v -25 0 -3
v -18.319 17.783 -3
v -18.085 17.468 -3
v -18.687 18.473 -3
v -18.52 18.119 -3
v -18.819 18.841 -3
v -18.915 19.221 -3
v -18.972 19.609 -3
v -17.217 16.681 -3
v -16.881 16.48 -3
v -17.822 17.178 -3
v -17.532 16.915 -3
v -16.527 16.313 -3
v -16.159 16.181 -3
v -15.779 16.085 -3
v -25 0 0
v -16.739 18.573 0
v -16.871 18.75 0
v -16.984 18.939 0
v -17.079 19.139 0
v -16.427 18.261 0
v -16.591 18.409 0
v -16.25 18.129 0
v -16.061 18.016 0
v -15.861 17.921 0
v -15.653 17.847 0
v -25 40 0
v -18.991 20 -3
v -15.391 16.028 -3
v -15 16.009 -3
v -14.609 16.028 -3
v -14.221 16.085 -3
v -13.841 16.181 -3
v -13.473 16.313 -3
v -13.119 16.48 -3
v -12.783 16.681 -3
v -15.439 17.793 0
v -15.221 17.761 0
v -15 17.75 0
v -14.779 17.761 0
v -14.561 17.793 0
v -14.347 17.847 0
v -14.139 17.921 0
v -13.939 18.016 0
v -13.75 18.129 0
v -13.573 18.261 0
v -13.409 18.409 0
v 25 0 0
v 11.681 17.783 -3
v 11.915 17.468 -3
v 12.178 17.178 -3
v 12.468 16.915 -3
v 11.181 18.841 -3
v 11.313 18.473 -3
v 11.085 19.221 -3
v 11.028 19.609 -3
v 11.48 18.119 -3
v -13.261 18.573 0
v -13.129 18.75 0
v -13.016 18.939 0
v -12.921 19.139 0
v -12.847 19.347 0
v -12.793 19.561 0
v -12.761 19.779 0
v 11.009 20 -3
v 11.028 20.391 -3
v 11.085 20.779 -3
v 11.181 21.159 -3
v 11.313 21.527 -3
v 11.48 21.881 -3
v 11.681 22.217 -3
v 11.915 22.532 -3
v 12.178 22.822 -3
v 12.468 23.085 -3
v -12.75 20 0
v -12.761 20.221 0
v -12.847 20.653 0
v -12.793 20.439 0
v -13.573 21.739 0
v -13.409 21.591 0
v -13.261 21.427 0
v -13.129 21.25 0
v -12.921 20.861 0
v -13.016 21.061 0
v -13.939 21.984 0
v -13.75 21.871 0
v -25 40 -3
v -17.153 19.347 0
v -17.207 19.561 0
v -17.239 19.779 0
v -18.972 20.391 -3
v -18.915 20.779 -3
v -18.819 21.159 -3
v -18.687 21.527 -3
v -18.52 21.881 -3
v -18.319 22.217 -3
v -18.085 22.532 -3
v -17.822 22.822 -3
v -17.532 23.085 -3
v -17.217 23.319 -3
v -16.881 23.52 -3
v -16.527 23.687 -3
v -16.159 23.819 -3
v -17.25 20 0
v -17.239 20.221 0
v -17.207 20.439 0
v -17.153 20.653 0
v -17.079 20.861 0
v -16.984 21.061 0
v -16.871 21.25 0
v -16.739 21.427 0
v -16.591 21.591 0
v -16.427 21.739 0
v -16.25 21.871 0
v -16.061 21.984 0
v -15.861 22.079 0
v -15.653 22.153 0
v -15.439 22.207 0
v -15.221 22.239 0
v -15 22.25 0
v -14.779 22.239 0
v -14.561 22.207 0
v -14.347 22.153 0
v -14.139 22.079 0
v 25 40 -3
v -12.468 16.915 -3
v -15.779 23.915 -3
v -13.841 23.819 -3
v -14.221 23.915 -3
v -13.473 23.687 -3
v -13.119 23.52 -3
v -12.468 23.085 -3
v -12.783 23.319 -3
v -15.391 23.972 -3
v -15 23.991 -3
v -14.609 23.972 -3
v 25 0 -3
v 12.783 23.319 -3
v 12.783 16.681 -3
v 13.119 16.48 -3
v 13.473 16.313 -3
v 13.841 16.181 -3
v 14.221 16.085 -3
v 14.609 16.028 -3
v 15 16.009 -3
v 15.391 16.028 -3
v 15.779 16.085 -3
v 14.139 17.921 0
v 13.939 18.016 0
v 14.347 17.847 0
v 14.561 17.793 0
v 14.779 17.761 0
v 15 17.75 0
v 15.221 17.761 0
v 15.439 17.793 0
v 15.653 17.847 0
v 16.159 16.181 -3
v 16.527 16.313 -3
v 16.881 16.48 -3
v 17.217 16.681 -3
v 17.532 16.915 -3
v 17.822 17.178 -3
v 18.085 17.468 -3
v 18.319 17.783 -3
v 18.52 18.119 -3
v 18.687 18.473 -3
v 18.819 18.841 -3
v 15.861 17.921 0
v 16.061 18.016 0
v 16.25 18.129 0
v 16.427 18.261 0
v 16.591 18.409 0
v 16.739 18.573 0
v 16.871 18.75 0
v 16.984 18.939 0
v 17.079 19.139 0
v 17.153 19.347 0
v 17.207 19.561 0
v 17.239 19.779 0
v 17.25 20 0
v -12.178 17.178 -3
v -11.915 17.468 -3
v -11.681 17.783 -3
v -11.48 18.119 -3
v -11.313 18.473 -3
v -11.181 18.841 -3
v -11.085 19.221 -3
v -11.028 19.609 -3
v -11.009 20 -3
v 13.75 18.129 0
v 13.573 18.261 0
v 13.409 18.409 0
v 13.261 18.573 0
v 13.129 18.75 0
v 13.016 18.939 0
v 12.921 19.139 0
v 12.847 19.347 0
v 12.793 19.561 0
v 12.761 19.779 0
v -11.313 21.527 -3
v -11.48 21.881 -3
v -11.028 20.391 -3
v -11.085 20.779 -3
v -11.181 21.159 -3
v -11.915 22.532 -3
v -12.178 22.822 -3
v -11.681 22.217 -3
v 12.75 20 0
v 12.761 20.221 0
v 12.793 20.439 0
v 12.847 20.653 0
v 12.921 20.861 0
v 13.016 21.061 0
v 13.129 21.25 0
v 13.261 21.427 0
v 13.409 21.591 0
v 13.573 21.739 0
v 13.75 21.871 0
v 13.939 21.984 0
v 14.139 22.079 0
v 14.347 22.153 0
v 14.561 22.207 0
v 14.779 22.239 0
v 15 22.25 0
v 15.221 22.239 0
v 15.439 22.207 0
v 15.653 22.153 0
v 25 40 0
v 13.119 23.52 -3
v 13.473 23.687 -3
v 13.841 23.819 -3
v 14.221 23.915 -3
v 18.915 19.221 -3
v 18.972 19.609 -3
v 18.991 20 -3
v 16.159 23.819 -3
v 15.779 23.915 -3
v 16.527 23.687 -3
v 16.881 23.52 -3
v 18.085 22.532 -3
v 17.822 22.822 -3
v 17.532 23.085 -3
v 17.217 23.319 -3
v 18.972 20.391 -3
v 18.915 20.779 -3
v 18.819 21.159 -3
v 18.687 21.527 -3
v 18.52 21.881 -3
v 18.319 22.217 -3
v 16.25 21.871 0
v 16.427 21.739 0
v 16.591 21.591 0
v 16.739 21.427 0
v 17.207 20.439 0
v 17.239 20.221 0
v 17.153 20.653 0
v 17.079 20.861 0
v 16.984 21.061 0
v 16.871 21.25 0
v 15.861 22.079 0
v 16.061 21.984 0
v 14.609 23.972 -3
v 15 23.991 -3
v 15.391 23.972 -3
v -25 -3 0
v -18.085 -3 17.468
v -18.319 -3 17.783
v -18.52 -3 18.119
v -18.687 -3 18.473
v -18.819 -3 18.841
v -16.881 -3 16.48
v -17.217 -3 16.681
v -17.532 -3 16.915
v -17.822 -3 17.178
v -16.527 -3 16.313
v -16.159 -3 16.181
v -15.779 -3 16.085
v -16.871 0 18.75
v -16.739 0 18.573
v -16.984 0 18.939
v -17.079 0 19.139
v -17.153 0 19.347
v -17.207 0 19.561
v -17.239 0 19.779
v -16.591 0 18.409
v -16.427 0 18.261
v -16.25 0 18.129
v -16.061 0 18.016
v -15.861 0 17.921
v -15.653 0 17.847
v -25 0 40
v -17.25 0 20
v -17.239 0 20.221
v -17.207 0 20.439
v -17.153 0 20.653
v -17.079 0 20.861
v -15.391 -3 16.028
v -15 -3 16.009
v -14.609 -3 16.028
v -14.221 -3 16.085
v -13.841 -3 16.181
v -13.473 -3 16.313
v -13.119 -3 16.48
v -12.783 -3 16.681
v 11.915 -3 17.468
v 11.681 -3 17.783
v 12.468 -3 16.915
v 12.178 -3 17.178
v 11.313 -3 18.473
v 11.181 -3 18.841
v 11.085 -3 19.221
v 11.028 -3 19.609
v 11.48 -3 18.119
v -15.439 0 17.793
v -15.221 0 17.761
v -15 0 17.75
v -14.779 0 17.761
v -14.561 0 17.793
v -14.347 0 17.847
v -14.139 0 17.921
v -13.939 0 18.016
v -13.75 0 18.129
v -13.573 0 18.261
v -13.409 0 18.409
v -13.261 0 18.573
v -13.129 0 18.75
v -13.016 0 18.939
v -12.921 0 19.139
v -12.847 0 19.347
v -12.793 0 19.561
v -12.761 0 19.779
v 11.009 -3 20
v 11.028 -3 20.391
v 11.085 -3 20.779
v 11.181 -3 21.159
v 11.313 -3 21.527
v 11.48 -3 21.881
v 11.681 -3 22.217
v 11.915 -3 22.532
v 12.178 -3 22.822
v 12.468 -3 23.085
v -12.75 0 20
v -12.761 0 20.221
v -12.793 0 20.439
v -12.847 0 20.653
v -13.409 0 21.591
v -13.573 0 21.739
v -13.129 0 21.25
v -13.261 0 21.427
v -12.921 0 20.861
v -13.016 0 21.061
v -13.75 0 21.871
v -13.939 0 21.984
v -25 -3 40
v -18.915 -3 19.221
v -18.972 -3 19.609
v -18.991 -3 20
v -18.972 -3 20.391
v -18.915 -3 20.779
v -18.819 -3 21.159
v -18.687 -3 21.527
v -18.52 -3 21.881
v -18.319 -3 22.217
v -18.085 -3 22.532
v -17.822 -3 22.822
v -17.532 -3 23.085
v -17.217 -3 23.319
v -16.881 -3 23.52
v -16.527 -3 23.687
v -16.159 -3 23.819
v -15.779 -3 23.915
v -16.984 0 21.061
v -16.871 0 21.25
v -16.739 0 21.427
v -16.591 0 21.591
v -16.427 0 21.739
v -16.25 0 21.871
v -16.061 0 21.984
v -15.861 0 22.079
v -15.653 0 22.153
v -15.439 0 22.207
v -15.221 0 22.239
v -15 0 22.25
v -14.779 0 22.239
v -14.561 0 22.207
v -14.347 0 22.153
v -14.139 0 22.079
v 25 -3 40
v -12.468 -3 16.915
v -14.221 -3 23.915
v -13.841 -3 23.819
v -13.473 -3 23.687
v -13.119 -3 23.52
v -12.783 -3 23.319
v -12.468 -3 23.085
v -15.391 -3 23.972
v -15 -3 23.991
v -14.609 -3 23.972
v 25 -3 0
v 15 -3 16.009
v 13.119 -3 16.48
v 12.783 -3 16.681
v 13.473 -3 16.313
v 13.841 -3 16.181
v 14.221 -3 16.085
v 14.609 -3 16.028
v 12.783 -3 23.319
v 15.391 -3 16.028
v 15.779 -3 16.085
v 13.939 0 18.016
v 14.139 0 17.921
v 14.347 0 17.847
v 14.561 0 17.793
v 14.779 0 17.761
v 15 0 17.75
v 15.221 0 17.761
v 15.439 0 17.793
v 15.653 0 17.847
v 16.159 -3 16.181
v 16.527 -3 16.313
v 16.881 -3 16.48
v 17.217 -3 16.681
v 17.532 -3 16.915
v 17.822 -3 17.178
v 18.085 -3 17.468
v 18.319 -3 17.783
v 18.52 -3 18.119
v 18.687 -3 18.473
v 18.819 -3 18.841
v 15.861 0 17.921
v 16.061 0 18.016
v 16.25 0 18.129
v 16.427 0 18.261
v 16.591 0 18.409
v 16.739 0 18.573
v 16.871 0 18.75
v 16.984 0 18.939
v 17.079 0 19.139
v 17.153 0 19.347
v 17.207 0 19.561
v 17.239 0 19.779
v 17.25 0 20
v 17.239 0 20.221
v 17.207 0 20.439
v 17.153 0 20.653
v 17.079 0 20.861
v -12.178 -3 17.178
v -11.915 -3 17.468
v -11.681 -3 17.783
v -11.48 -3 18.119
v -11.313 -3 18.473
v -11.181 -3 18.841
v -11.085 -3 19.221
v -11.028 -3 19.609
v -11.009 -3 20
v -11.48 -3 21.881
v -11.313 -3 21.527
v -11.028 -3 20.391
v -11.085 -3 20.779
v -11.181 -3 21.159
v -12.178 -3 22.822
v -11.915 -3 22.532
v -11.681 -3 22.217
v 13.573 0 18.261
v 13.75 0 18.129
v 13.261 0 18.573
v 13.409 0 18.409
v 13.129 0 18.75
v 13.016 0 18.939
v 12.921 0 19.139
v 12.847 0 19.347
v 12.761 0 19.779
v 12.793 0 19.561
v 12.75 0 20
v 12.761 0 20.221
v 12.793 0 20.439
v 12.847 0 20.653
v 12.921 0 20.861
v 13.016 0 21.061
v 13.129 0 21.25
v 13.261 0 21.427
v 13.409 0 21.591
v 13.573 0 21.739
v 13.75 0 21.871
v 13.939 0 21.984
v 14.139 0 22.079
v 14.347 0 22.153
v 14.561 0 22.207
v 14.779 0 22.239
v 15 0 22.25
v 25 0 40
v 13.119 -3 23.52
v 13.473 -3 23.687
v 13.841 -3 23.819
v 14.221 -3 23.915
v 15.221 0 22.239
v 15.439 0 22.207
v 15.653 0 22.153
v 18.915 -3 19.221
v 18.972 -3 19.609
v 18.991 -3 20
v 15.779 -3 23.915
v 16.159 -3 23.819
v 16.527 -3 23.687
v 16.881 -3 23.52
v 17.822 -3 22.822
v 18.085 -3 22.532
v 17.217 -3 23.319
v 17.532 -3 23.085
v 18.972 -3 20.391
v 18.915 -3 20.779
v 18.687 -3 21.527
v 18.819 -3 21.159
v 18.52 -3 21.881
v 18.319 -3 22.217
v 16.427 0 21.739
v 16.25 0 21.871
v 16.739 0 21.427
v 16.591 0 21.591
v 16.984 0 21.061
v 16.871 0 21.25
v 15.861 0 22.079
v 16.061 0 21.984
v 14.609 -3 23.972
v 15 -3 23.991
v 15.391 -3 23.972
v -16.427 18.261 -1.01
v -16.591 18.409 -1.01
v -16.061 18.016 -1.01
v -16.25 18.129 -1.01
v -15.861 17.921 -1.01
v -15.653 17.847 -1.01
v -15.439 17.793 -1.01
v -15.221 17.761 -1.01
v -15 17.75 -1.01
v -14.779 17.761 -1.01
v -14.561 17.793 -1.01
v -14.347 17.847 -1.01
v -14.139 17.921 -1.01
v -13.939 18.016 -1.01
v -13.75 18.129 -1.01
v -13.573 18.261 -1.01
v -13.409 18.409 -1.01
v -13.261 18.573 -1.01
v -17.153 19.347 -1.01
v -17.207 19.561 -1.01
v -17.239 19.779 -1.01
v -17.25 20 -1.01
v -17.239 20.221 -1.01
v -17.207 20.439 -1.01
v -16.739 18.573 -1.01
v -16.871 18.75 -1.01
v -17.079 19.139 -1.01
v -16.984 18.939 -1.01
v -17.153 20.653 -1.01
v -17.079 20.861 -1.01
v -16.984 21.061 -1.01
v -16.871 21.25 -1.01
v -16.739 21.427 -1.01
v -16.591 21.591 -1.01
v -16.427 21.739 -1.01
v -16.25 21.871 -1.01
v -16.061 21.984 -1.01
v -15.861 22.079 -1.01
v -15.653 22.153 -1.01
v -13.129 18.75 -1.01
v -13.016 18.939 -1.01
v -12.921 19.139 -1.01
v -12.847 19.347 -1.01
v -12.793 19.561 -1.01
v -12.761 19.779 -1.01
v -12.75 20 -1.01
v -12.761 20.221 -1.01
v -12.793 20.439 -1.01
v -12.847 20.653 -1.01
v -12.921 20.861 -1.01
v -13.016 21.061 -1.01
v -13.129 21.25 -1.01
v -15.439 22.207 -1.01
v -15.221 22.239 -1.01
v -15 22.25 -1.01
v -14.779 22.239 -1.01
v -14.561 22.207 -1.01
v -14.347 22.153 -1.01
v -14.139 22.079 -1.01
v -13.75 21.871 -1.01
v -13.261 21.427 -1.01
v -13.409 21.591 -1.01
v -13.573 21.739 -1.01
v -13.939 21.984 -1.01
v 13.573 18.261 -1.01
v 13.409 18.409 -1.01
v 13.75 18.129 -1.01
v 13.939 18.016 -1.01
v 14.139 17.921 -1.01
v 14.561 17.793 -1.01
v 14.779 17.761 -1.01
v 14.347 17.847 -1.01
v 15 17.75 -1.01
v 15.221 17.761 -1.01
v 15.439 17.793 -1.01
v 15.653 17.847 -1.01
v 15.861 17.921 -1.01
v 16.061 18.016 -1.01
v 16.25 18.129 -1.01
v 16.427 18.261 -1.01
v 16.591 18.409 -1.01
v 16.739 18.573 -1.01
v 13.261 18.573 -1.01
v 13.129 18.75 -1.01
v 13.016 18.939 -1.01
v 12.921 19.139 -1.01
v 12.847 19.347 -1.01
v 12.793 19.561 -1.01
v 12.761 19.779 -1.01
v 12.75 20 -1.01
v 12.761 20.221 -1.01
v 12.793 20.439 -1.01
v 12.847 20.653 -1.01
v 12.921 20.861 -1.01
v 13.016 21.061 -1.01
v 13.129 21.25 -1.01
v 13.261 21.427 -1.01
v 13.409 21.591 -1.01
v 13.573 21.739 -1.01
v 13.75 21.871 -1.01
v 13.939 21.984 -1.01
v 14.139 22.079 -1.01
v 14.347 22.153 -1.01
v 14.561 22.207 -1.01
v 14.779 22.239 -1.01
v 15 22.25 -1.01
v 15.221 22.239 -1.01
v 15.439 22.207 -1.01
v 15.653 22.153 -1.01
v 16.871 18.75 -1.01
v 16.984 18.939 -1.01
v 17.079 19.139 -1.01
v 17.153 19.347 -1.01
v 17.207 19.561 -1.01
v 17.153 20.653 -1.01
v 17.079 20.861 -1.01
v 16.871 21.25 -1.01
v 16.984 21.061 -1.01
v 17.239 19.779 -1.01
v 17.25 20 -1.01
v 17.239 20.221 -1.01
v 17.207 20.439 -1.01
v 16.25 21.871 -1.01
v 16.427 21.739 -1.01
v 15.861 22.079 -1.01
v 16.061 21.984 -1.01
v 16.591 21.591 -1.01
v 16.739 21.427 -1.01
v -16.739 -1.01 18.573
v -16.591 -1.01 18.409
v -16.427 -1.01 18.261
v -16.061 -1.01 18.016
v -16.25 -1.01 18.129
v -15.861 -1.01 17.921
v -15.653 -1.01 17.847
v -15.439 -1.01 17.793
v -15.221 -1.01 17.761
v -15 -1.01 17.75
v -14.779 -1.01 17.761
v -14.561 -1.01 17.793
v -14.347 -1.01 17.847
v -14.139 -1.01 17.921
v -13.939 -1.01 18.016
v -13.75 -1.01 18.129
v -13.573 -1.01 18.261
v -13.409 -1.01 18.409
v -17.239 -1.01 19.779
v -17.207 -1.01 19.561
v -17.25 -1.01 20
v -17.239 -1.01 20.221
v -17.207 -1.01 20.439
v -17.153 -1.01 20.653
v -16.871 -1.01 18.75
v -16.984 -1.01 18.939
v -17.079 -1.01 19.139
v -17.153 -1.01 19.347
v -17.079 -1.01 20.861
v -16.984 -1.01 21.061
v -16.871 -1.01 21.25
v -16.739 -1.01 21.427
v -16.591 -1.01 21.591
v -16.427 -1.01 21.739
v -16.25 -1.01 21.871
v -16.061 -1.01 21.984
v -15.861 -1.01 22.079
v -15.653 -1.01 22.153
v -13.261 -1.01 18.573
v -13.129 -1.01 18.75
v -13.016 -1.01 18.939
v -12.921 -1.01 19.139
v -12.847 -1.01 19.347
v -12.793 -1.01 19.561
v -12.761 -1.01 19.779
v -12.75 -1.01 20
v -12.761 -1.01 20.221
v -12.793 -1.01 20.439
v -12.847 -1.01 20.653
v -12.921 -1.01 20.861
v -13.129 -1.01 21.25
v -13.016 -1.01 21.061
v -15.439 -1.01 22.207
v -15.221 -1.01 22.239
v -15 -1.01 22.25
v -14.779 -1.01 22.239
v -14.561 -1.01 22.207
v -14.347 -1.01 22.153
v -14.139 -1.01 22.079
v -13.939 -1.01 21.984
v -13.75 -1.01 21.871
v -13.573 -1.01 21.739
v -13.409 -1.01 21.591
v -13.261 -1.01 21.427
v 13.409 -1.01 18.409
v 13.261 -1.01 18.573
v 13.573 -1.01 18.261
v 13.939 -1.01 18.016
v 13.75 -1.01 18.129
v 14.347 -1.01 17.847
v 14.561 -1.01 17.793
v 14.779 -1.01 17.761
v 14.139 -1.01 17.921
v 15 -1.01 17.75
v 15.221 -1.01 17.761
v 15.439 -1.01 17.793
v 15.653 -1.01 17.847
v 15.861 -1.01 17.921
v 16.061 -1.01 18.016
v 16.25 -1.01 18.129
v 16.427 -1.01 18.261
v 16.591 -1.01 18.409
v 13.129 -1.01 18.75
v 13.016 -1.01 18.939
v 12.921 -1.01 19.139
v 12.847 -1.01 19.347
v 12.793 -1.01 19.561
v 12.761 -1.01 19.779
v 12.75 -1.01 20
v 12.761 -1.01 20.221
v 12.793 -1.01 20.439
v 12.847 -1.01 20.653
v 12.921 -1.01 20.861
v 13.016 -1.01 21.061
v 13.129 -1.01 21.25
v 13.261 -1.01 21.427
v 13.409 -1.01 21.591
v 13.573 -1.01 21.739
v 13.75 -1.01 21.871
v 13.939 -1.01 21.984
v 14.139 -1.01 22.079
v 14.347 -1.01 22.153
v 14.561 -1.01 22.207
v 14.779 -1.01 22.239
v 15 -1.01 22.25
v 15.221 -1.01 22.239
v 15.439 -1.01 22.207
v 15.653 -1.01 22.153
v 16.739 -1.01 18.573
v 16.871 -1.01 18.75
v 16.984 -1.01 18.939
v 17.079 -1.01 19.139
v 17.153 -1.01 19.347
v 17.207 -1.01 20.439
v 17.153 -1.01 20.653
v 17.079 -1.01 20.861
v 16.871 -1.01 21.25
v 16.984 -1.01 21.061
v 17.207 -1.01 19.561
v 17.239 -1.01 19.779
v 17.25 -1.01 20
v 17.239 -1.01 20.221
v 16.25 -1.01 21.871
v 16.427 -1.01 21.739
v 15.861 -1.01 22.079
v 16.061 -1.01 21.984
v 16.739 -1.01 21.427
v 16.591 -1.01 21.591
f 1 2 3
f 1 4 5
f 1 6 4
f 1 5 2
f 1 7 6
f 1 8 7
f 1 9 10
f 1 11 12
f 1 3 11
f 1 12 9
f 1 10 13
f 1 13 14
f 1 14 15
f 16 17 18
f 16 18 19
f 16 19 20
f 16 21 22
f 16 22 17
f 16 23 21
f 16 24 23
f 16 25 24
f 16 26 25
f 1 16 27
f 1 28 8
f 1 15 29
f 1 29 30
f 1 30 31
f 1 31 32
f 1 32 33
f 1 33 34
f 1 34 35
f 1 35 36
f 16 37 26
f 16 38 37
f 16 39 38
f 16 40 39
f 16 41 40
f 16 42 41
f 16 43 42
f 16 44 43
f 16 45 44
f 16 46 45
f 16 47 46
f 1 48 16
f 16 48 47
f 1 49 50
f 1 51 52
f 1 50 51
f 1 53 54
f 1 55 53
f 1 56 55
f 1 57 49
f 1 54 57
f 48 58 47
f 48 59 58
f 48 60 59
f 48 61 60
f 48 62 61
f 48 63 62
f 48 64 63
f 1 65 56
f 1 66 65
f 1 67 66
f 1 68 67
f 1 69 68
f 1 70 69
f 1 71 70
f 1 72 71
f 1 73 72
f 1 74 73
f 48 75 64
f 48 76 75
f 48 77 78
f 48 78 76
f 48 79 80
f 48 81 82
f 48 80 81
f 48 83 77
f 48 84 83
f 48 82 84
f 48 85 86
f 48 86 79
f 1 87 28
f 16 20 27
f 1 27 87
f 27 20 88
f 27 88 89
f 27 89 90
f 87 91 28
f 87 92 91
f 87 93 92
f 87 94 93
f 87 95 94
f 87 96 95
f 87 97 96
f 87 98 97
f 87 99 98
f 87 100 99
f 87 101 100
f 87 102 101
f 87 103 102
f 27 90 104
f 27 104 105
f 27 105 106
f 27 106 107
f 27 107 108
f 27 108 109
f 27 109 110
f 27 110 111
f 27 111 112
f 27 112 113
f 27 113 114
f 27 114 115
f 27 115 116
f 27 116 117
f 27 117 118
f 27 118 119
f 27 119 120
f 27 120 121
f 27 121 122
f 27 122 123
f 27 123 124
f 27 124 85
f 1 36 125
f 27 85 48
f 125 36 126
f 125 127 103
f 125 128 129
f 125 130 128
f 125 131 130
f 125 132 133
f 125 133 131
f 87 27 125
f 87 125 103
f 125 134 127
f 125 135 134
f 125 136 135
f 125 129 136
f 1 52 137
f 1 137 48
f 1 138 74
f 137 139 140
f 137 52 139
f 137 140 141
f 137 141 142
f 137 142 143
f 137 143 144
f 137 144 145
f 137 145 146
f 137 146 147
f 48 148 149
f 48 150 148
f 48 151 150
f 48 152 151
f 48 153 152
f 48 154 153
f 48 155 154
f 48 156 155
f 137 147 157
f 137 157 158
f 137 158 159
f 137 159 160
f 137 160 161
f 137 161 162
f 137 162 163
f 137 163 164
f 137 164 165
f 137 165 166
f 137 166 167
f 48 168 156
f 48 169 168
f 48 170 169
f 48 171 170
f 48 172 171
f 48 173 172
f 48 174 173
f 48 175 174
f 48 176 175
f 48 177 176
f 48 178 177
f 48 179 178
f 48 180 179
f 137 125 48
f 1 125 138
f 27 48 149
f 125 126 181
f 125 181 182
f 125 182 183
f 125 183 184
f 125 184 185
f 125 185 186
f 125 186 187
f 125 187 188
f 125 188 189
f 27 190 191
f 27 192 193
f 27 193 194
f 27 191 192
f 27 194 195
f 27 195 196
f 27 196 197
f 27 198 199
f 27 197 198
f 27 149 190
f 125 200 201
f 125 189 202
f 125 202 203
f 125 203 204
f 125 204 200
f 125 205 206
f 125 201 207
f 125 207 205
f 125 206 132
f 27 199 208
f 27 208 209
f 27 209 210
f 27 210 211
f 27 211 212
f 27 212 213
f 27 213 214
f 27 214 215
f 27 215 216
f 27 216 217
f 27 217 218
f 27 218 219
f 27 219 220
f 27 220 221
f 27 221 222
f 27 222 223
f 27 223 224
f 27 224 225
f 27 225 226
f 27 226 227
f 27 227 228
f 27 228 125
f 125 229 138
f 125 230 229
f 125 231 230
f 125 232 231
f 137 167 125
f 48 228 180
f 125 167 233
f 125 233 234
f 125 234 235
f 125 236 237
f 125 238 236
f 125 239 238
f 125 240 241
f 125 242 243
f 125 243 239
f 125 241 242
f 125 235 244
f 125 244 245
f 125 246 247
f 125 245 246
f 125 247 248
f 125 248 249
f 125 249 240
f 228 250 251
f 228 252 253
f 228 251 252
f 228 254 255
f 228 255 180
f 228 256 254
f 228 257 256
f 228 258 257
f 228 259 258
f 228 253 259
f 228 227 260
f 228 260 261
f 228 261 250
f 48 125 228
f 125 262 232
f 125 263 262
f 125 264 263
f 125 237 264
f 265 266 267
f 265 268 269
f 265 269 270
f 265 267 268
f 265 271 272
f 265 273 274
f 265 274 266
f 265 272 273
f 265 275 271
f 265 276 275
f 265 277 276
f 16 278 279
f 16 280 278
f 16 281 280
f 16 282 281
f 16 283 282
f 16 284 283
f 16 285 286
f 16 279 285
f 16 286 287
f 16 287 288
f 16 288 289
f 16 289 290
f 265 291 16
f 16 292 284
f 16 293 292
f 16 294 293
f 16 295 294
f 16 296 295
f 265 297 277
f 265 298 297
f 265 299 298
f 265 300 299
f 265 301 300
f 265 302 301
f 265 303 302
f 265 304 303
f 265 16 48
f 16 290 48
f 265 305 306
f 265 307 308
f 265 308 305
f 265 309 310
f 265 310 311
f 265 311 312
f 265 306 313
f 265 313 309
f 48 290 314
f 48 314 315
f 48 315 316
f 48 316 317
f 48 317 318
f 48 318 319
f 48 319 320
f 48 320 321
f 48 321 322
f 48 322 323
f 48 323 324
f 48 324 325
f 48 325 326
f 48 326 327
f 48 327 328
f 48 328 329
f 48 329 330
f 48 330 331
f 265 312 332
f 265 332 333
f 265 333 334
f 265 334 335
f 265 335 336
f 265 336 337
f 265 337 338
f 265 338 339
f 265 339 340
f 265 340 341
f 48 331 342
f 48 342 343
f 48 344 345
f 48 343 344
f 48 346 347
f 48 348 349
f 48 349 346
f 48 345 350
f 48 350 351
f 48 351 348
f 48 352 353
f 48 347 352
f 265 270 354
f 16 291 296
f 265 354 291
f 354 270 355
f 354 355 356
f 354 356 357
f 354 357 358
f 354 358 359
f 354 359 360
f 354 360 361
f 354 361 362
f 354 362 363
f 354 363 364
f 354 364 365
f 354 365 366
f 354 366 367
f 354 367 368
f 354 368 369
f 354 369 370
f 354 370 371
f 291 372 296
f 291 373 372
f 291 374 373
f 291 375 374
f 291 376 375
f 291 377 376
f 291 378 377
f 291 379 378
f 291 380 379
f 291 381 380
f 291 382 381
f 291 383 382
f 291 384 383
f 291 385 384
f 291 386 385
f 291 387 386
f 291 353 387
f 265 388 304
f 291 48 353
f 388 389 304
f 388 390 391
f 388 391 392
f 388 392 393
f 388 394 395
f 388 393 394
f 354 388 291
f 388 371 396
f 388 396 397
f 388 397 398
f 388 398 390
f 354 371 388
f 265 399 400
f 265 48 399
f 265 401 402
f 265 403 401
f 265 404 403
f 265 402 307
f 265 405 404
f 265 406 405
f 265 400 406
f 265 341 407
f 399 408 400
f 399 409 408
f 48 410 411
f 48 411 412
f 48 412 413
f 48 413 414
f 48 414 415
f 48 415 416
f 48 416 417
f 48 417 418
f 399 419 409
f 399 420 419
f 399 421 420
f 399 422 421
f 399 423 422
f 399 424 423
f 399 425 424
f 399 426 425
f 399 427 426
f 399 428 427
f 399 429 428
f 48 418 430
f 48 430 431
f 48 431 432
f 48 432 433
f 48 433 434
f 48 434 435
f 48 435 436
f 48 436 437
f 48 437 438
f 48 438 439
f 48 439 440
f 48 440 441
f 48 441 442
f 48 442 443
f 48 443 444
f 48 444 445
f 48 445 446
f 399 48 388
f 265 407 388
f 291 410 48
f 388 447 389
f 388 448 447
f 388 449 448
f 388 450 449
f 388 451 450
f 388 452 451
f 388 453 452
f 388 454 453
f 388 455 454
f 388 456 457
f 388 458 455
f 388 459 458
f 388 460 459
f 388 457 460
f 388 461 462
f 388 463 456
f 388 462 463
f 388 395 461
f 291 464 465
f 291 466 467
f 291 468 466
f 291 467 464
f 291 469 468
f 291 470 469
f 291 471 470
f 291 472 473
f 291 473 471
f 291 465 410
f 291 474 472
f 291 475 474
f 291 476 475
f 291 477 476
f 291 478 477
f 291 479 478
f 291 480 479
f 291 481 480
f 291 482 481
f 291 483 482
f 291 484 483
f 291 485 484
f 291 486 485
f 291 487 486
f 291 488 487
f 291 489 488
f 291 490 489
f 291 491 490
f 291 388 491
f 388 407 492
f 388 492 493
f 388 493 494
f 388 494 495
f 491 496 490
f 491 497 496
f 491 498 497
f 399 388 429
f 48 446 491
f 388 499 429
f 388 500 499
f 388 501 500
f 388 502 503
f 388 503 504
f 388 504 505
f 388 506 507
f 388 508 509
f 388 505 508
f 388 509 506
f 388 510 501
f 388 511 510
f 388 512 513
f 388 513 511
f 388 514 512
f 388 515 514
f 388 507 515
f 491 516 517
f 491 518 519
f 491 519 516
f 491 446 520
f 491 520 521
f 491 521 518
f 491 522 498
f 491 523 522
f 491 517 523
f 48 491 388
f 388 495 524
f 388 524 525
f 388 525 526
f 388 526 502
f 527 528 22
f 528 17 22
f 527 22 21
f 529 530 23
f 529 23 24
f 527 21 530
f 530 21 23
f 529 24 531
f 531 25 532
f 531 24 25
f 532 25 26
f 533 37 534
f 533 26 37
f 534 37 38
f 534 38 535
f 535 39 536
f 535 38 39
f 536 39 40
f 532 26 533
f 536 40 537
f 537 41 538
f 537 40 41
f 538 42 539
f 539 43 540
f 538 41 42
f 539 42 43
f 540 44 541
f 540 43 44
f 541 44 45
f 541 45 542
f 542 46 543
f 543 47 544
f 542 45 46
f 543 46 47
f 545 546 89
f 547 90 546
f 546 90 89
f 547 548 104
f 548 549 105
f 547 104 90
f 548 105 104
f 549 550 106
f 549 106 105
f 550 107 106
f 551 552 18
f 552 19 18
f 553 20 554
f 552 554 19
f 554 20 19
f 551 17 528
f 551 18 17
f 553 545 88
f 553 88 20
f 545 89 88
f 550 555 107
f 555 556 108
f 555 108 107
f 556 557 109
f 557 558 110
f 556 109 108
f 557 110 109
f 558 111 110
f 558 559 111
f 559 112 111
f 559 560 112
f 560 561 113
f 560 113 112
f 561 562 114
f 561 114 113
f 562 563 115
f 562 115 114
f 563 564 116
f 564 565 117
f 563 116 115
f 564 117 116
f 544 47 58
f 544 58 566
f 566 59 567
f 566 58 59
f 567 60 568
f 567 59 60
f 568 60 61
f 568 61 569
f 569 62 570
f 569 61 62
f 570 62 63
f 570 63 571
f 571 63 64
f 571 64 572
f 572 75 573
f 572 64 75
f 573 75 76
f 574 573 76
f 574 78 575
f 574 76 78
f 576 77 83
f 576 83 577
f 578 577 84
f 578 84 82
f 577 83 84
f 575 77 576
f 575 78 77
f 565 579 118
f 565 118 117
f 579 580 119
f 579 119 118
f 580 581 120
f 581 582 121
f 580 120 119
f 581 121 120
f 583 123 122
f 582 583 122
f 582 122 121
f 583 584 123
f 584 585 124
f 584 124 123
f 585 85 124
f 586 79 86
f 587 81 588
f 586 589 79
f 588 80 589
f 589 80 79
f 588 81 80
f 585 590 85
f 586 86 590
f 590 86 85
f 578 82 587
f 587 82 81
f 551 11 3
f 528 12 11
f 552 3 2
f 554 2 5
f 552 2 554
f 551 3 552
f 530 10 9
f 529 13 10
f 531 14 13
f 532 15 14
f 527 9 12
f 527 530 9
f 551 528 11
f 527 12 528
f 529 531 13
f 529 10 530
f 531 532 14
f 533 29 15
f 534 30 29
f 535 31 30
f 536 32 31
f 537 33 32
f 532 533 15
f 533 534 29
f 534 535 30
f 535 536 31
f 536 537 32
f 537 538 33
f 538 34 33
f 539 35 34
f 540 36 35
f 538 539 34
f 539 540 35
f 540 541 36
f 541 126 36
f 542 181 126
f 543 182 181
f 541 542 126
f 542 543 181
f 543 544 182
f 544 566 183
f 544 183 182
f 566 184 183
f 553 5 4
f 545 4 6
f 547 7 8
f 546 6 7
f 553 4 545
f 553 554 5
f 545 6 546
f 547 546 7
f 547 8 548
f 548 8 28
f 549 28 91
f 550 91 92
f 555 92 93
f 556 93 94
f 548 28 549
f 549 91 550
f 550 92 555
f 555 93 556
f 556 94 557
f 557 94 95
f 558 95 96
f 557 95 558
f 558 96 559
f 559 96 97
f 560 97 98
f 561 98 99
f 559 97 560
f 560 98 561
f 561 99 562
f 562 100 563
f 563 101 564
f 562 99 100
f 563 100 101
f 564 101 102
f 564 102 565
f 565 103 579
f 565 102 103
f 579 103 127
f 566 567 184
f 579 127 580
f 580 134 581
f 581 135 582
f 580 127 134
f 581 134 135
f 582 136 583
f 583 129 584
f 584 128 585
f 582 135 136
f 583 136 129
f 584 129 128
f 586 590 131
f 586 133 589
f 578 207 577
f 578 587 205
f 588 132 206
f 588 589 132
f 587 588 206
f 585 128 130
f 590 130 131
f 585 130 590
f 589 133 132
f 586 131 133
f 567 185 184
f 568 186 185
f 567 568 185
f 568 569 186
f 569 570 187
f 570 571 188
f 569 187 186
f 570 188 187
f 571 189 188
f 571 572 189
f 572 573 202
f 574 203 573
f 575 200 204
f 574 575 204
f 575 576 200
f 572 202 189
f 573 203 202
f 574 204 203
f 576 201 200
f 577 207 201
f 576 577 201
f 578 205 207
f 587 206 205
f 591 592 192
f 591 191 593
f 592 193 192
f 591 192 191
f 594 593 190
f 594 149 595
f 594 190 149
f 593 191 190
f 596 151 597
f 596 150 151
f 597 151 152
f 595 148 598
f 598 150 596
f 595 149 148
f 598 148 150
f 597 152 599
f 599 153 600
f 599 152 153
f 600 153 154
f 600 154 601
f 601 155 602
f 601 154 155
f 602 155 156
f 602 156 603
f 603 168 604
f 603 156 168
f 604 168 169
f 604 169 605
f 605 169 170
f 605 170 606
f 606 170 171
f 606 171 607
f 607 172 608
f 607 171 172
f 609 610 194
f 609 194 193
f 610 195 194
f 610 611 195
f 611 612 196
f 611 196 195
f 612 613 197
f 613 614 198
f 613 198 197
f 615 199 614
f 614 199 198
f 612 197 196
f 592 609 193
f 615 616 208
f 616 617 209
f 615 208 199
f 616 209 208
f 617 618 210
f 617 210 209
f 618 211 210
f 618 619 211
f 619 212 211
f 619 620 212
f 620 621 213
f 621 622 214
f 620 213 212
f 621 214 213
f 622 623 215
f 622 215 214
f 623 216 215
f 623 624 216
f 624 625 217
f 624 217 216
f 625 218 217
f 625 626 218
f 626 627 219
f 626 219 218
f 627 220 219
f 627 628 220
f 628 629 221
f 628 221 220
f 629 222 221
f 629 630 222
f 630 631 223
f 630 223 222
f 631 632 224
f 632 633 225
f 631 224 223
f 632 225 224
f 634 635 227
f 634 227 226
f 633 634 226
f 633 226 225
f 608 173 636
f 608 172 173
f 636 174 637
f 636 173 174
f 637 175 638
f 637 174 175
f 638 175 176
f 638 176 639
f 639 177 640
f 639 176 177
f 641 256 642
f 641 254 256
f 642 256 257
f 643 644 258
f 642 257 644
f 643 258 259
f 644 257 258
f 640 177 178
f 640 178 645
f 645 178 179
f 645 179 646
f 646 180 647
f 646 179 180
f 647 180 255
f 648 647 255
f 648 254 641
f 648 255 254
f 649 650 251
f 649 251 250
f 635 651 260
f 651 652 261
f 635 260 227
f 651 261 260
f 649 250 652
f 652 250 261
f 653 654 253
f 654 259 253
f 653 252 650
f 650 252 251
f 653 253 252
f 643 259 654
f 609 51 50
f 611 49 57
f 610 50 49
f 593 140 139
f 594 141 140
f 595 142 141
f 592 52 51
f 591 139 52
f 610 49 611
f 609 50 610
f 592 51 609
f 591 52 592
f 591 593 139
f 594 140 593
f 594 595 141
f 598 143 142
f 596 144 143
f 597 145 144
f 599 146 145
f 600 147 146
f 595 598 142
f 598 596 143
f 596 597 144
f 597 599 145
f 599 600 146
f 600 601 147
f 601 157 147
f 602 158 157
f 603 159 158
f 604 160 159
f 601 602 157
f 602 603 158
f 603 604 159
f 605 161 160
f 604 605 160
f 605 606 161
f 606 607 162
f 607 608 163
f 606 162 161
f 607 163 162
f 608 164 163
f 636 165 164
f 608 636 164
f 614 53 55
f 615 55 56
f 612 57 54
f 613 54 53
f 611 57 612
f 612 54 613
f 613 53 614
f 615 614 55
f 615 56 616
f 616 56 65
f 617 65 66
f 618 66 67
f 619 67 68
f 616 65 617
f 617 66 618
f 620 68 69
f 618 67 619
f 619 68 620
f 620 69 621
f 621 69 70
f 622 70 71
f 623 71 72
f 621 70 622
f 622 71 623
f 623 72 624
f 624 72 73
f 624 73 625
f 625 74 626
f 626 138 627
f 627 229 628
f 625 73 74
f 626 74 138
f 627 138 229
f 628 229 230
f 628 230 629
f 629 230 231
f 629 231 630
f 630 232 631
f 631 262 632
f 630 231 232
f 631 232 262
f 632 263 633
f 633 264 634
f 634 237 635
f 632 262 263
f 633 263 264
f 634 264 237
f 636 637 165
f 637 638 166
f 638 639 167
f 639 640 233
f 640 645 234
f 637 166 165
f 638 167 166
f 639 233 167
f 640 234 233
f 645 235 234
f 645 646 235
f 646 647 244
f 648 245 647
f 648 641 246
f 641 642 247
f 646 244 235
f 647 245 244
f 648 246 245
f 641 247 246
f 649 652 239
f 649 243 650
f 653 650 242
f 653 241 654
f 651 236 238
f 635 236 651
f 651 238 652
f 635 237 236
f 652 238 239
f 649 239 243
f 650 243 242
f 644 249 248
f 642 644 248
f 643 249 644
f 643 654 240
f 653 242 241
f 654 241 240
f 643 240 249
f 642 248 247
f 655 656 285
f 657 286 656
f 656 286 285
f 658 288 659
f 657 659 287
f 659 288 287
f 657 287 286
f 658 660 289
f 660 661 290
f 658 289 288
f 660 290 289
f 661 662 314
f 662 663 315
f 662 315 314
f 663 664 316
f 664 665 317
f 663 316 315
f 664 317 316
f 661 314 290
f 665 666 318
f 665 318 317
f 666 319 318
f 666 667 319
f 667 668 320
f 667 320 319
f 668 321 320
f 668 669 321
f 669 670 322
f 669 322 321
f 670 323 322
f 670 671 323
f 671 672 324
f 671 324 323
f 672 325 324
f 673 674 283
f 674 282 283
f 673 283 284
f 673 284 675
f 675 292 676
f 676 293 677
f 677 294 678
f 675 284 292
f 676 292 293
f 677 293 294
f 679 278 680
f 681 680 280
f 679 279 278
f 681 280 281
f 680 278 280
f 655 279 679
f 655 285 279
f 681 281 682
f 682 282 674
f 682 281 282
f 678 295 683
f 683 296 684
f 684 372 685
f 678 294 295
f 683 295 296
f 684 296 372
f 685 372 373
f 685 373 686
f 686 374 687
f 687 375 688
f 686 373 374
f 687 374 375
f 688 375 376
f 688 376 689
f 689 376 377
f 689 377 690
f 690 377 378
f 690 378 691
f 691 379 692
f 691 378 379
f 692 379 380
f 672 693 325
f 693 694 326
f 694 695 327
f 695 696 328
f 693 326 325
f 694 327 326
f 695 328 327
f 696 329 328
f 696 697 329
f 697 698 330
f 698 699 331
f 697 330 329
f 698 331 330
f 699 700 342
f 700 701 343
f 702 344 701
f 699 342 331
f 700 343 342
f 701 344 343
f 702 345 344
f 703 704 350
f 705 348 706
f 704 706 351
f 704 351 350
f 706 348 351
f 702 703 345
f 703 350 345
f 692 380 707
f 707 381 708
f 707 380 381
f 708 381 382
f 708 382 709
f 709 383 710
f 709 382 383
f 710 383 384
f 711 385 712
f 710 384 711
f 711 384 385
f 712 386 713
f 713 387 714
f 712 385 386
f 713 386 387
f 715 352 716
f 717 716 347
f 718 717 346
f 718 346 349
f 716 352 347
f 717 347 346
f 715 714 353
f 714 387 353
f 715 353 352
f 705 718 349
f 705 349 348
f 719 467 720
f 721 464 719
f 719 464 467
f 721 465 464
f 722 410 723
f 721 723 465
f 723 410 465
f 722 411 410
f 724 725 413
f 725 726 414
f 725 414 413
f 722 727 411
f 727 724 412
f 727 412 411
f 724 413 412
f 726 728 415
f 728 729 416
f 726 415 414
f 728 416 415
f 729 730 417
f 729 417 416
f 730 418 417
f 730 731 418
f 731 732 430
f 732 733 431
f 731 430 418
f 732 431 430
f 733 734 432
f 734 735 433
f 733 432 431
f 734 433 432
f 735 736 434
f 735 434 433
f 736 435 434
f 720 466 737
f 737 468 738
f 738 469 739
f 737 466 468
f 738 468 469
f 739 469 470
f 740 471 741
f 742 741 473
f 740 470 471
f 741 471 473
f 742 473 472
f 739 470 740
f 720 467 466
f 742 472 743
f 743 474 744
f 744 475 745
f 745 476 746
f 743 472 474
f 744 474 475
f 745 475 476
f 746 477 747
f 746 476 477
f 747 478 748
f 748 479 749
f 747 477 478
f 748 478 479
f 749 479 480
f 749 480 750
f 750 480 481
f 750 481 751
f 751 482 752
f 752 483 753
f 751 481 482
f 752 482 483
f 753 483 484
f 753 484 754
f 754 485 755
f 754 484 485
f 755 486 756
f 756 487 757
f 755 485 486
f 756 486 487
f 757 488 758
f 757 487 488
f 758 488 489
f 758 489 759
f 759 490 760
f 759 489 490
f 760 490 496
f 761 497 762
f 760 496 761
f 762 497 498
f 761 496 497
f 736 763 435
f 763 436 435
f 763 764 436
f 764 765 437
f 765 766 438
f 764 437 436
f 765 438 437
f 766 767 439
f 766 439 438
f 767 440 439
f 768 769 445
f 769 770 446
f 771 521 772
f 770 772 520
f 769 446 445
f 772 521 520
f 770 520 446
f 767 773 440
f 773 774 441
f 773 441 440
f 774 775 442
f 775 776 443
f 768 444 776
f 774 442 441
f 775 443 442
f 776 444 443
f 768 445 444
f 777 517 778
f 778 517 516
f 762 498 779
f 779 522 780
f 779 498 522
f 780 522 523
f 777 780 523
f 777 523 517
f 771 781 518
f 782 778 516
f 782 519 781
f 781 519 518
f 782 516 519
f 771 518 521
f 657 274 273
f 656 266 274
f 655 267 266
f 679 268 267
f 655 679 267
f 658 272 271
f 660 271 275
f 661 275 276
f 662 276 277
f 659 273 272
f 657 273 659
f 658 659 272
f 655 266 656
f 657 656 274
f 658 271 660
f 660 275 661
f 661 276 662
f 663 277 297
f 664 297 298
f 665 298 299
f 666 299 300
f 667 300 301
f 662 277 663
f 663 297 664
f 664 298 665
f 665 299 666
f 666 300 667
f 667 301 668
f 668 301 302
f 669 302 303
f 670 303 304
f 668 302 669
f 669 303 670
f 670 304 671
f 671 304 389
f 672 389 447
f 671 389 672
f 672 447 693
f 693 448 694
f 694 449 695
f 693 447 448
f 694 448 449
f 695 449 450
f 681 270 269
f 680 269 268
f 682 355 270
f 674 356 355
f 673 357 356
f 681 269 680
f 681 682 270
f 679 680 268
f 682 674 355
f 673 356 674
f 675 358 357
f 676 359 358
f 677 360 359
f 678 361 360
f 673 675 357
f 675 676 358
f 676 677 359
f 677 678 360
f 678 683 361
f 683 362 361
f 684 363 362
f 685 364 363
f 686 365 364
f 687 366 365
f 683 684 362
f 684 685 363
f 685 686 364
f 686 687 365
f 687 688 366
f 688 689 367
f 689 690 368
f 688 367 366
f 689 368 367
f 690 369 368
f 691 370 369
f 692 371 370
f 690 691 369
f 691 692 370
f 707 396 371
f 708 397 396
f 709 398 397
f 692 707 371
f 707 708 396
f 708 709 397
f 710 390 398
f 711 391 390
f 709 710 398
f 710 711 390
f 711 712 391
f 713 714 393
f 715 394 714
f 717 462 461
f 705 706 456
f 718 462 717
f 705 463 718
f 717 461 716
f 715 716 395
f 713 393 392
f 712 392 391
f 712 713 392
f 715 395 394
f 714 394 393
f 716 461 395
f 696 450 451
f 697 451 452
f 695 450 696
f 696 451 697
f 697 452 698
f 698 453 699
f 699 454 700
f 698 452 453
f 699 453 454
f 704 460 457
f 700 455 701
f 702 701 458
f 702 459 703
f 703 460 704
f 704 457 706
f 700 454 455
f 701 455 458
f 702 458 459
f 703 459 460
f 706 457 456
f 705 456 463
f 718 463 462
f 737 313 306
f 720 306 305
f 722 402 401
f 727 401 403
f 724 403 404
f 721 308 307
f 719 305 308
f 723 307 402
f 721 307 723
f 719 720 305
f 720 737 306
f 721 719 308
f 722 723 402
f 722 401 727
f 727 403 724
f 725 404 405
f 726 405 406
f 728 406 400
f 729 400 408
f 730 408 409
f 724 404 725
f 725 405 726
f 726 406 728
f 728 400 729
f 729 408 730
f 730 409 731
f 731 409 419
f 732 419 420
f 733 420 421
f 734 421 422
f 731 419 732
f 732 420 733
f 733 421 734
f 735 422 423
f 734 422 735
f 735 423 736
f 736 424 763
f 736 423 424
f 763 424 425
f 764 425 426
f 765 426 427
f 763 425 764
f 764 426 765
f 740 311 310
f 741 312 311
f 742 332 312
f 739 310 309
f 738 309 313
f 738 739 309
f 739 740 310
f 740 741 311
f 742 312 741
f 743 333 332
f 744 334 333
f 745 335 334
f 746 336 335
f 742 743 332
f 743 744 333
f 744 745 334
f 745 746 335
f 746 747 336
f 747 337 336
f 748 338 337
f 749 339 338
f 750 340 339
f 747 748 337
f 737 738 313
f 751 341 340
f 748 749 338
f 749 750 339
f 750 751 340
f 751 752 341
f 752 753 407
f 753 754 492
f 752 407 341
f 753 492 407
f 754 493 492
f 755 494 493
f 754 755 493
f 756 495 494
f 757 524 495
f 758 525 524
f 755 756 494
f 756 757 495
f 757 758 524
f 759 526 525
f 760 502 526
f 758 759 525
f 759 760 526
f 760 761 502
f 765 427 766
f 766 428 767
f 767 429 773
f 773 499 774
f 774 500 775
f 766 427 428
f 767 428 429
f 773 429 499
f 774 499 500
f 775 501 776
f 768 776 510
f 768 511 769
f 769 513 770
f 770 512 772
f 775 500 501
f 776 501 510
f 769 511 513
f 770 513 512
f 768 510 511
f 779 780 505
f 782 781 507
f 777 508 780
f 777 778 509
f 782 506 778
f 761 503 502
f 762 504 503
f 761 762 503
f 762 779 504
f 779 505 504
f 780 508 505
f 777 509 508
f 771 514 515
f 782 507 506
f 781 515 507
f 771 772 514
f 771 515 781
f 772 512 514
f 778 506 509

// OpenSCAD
$fn = 64;

// --- Parameters ---
width     = 50;   // X direction
depth     = 40;   // flange extent (Y for horizontal, Z for vertical)
thickness = 3;

// Hole parameters
through_d    = 4.5;
csink_d      = 8;
csink_depth  = 2;
edge_inset   = 10; // distance from width edge to hole centre

// Derived positions
hx = width / 2 - edge_inset;   // ±15
fc = depth / 2;                 // 20  (face centre line)
eps = 0.01;

// --- Model ---
difference() {
    union() {
        // Horizontal flange  (inner face at Z=0, outer face at Z=-thickness)
        translate([-width/2, 0, -thickness])
            cube([width, depth, thickness]);

        // Vertical flange  (inner face at Y=0, outer face at Y=-thickness)
        translate([-width/2, -thickness, 0])
            cube([width, thickness, depth]);
    }

    // -- Horizontal flange holes (drill in Z, countersink on bottom) --
    for (sx = [-1, 1]) {
        translate([sx * hx, fc, -thickness - eps]) {
            cylinder(d = through_d, h = thickness + 2 * eps);        // through hole
            cylinder(d1 = csink_d, d2 = through_d, h = csink_depth); // countersink
        }
    }

    // -- Vertical flange holes (drill in Y, countersink on back) --
    for (sx = [-1, 1]) {
        translate([sx * hx, -thickness - eps, fc])
        rotate([-90, 0, 0]) {
            cylinder(d = through_d, h = thickness + 2 * eps);        // through hole
            cylinder(d1 = csink_d, d2 = through_d, h = csink_depth); // countersink
        }
    }
}
